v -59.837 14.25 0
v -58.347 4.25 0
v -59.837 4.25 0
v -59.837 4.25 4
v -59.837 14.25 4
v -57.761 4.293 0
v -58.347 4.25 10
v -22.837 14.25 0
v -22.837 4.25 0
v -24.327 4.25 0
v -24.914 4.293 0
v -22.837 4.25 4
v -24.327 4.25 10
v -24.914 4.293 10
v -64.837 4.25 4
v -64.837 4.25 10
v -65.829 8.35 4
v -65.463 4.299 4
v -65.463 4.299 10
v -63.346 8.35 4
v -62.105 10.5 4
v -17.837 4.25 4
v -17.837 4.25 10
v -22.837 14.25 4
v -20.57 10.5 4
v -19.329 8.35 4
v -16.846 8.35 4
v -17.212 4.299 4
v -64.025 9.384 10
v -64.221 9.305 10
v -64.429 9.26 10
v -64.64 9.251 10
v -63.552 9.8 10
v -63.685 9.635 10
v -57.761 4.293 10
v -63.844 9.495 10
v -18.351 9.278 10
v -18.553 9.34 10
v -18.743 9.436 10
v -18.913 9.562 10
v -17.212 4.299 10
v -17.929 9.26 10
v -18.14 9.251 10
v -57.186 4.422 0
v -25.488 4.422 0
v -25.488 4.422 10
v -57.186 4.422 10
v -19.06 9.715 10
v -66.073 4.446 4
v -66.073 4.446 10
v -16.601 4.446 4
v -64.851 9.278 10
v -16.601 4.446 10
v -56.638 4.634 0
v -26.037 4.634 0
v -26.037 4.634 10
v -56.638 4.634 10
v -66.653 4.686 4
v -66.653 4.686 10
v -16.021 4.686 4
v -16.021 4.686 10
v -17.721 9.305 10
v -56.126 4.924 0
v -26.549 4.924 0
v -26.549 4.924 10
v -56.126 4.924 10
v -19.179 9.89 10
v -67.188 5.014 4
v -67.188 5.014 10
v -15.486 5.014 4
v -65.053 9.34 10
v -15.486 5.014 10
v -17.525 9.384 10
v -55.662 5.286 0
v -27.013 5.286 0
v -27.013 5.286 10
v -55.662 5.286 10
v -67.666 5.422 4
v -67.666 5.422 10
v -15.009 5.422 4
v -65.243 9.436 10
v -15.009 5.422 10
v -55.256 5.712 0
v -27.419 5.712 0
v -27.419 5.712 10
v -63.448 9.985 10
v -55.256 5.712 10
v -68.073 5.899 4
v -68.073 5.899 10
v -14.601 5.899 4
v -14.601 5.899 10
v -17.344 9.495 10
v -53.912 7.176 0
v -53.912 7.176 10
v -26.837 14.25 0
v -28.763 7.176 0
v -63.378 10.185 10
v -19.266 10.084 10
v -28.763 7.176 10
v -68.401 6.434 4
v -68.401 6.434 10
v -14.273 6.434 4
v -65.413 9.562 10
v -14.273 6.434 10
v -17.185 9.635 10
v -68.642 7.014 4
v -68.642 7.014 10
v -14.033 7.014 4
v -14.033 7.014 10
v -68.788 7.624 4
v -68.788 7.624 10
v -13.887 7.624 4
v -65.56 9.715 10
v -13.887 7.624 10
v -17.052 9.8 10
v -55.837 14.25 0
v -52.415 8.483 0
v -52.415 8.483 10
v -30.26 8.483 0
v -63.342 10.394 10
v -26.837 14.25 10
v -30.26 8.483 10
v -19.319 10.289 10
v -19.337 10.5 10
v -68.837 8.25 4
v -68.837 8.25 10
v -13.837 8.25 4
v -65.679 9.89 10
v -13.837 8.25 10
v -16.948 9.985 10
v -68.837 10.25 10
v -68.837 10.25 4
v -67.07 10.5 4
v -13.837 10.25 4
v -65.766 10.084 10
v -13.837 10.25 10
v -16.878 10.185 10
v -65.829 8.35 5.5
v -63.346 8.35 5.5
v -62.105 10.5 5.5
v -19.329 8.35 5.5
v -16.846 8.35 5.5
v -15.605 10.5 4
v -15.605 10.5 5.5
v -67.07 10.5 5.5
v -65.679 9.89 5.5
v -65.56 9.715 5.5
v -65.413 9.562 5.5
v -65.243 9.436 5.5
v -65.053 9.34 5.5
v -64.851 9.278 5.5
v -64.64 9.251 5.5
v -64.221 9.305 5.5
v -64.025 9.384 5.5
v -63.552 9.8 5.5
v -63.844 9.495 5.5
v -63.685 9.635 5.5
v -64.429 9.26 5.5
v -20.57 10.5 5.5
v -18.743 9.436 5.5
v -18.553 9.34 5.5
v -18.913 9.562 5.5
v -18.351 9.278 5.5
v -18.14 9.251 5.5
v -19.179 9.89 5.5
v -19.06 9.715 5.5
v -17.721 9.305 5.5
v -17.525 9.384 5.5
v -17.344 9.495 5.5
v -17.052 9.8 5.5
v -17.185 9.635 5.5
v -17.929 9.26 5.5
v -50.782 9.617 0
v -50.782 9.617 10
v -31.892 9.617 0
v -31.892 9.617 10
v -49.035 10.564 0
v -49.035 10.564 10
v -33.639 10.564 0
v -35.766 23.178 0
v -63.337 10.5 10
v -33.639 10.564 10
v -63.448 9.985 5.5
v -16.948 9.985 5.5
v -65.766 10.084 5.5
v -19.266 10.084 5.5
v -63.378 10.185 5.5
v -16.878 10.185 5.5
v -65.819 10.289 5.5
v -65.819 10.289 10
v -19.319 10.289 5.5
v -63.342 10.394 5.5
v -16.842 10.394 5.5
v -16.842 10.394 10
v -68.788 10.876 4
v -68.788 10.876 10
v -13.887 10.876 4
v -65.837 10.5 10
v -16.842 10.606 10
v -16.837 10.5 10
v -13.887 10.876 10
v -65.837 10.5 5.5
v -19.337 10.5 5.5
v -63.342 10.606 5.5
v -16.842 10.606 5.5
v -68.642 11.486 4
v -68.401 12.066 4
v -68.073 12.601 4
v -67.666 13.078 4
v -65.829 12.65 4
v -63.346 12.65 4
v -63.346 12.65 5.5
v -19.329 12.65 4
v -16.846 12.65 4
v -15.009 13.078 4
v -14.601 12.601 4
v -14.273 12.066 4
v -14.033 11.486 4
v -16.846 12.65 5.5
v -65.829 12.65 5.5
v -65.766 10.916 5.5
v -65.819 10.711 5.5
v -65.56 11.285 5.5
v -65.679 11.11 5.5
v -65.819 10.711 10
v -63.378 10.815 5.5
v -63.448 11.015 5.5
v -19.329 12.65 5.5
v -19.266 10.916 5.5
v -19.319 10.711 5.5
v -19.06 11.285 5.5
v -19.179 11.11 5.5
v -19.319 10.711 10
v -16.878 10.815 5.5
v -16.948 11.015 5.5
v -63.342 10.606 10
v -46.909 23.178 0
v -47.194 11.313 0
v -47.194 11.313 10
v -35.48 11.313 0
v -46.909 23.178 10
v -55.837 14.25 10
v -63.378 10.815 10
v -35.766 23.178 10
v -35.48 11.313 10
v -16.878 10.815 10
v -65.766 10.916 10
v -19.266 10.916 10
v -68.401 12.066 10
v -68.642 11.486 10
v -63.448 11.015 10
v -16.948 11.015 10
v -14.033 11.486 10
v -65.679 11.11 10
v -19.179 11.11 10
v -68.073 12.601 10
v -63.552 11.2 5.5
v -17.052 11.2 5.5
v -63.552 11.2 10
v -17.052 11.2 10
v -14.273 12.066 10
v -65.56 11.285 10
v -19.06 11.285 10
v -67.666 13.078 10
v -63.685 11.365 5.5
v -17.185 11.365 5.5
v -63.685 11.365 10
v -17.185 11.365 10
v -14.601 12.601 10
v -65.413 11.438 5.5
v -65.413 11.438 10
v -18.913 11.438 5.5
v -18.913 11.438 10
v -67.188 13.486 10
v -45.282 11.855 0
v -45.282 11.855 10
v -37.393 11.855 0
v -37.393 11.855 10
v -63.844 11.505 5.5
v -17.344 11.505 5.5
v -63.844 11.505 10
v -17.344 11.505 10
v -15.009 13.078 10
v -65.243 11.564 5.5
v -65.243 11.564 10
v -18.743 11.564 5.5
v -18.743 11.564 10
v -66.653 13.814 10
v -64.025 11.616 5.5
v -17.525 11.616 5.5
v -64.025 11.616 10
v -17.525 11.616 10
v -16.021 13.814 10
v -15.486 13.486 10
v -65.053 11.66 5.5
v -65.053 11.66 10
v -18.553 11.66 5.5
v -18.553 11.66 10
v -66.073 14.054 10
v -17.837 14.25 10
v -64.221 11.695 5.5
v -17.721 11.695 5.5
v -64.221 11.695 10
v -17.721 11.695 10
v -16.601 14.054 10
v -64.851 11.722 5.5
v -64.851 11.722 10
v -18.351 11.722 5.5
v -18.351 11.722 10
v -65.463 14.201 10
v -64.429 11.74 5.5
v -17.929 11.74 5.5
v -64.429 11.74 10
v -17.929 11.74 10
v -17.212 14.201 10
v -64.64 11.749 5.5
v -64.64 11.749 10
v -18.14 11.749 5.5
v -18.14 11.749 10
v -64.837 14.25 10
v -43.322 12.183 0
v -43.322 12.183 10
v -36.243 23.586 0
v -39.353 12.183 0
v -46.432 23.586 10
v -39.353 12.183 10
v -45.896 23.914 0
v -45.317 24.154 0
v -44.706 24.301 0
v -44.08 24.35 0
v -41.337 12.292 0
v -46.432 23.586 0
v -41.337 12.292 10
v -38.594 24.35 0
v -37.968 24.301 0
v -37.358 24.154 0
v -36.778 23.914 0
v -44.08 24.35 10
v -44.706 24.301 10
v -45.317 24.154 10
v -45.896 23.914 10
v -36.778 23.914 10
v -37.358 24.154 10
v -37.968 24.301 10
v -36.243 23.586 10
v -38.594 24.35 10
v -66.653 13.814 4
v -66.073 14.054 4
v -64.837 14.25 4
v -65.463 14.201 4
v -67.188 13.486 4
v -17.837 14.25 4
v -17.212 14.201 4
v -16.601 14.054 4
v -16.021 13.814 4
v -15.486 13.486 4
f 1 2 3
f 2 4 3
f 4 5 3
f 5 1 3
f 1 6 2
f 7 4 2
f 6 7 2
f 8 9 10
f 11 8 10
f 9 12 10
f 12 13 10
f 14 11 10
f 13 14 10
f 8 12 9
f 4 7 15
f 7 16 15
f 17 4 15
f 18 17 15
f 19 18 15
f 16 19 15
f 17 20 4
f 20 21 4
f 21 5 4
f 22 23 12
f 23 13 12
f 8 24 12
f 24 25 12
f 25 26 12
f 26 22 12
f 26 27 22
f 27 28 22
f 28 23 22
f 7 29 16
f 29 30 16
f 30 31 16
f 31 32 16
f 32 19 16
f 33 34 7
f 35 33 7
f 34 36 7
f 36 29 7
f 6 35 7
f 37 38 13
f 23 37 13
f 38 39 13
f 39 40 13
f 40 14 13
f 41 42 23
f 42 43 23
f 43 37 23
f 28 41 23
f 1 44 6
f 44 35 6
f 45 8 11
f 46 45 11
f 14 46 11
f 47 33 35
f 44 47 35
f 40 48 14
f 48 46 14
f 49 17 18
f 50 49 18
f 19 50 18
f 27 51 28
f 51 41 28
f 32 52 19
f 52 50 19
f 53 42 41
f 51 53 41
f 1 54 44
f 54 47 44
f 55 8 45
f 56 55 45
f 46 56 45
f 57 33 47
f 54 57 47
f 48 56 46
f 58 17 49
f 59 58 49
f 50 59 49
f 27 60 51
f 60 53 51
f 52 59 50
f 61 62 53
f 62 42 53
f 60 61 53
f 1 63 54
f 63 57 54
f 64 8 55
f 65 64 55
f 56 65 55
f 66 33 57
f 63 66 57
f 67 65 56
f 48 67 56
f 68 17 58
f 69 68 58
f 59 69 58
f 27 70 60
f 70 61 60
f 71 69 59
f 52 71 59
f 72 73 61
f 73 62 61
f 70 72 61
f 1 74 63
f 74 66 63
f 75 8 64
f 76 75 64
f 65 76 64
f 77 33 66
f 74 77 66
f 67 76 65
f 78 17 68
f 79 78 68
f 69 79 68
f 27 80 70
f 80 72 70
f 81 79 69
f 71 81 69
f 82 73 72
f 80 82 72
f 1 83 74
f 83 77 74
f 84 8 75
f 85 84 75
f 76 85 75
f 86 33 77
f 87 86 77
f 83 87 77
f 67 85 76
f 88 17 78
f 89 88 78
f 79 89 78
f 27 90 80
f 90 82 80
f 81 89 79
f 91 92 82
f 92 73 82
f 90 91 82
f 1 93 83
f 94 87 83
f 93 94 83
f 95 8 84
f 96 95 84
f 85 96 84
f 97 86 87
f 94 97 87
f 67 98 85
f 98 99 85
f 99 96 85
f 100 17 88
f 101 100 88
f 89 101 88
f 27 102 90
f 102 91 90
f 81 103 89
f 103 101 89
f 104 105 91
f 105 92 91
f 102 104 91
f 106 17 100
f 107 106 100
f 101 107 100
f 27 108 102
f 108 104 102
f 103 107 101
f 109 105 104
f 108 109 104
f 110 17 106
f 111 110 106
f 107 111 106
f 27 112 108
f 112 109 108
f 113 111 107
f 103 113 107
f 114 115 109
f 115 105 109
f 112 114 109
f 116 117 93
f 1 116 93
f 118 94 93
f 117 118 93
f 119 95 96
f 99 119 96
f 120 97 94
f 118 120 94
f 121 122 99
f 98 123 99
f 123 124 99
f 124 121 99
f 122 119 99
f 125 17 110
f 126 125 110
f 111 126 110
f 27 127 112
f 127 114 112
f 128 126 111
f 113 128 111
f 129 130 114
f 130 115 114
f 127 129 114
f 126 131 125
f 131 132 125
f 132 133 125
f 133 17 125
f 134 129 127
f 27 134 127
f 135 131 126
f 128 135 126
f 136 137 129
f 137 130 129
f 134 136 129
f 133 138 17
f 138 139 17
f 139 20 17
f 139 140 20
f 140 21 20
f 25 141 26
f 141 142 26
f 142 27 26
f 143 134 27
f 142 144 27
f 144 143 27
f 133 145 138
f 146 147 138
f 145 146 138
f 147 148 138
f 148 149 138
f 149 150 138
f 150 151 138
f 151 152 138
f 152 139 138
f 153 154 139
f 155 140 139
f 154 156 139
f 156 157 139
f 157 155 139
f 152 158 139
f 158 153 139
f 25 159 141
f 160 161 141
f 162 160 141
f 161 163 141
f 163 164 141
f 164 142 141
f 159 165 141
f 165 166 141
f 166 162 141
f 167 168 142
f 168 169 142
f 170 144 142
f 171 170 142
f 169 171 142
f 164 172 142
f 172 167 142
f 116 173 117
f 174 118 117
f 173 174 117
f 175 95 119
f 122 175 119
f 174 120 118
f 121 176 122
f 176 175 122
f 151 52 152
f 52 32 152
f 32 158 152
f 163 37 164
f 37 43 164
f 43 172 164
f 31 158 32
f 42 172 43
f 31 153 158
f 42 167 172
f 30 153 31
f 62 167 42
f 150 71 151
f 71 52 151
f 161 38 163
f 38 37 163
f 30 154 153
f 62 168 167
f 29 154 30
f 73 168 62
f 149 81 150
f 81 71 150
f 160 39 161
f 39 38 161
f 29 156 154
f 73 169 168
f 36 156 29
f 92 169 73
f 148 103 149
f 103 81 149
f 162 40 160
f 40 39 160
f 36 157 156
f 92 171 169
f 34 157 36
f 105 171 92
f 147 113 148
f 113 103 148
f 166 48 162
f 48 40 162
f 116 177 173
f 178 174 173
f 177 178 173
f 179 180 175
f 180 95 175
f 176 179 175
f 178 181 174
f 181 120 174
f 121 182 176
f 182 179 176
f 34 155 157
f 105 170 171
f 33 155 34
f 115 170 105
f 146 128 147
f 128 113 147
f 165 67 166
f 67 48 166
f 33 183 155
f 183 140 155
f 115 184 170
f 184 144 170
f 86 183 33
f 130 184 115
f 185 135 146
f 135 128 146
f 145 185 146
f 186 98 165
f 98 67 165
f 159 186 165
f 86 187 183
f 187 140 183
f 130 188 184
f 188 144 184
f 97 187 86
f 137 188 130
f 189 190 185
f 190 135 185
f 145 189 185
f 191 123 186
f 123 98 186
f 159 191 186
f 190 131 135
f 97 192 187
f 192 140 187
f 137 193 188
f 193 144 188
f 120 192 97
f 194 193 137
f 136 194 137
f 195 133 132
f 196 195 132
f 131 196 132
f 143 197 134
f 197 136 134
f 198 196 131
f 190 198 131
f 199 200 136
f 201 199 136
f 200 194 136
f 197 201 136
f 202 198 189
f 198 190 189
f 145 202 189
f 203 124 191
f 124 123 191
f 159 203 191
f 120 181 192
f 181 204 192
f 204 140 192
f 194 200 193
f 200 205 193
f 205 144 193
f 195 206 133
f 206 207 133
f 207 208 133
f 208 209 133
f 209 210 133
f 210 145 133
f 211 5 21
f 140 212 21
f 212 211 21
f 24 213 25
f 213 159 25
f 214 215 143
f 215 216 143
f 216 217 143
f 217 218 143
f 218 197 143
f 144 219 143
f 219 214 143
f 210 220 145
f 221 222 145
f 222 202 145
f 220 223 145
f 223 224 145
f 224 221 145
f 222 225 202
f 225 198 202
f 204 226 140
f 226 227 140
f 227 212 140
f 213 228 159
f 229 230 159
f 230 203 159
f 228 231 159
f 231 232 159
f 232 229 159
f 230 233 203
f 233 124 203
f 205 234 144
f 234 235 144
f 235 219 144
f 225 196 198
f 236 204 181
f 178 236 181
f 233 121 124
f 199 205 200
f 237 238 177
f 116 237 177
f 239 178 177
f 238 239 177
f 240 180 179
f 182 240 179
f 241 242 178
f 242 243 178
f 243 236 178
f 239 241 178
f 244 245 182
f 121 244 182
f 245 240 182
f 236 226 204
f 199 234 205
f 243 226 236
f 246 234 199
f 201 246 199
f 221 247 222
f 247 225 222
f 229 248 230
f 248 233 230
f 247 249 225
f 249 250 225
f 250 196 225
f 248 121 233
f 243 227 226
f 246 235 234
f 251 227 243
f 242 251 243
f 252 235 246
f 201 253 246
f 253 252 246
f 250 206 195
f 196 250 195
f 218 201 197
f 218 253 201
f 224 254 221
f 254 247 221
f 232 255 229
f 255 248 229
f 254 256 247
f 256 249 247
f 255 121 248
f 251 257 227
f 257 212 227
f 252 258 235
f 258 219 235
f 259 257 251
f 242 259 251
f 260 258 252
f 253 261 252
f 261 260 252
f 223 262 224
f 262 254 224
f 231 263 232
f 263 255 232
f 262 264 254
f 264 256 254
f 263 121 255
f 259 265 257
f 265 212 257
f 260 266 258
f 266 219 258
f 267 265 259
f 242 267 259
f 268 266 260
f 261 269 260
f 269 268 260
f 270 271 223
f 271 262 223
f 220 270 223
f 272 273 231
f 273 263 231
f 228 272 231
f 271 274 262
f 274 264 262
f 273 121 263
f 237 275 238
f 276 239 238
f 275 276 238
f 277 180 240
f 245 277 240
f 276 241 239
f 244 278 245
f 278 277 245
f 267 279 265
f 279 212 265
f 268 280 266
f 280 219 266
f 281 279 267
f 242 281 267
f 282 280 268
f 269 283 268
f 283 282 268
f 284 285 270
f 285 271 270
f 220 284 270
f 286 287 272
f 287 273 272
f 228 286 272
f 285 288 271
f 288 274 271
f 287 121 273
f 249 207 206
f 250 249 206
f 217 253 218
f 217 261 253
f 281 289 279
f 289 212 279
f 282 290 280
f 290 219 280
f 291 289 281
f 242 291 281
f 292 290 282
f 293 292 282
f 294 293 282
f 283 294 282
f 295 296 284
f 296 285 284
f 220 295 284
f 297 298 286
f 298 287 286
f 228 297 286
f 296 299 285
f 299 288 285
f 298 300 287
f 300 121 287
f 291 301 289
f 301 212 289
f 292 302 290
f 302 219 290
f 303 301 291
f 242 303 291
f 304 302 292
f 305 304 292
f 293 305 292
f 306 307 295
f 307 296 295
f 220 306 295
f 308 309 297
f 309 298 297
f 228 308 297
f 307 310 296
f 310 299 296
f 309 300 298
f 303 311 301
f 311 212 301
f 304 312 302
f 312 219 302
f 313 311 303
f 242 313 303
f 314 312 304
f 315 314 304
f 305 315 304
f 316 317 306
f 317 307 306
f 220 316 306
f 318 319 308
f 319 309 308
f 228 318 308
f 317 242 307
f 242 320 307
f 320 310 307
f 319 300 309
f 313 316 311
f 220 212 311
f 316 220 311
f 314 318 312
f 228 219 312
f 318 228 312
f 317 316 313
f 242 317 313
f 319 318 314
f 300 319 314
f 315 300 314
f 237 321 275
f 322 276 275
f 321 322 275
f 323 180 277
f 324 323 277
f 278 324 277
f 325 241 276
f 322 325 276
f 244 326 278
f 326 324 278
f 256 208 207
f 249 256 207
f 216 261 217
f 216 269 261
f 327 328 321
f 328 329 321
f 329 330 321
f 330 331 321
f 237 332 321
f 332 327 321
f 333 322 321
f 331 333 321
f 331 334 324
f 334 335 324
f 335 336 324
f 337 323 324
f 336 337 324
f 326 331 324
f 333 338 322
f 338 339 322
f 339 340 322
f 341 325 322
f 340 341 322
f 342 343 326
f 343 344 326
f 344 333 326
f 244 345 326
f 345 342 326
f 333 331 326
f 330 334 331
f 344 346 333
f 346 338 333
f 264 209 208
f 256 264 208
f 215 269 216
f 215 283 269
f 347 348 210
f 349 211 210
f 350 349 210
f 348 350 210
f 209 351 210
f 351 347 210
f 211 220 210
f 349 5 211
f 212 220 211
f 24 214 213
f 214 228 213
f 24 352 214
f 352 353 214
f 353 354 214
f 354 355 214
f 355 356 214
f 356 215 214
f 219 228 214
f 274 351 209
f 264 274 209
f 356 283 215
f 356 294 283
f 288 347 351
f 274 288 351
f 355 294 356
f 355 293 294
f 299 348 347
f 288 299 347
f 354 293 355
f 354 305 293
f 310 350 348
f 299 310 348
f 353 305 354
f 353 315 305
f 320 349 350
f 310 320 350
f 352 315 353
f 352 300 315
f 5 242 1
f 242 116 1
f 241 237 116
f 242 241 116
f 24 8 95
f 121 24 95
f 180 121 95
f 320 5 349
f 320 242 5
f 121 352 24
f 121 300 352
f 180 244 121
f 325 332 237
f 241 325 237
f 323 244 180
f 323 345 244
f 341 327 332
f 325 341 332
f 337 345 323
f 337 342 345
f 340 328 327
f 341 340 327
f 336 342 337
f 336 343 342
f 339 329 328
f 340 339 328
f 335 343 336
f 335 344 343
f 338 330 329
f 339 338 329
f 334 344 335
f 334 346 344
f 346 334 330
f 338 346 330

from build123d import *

# Parameters (mm, degrees)
CROQUIS1_R              = 1.25
SALIENTE_EXTRUIR1_DEPTH = 10
CROQUIS2_W              = 9
CROQUIS2_H              = 10
CORTAR_EXTRUIR1_DEPTH   = 4
CORTAR_EXTRUIR2_DEPTH   = 1.5
REDONDEO2_R             = 4


with BuildPart() as part:
    # Croquis1 → Saliente-Extruir1 (new body)
    with BuildSketch(Plane.XY):
        with BuildLine():
            Line((-68.837310195, 14.25), (-55.837310195, 14.25))
            Line((-55.837310195, 14.25), (-45.737310195, 24.35))
            Line((-45.737310195, 24.35), (-36.937310195, 24.35))
            Line((-36.937310195, 24.35), (-26.837310195, 14.25))
            Line((-26.837310195, 14.25), (-13.837310195, 14.25))
            Line((-13.837310195, 14.25), (-13.837310195, 4.25))
            Line((-13.837310195, 4.25), (-26.337310195, 4.25))
            ThreePointArc((-26.337310195, 4.25), (-41.337310195, 12.292271557), (-56.337310195, 4.25))
            Line((-56.337310195, 4.25), (-68.837310195, 4.25))
            Line((-68.837310195, 4.25), (-68.837310195, 14.25))
        make_face()
        with Locations((-18.087310195, 10.5)):
            Circle(CROQUIS1_R, mode=Mode.SUBTRACT)
        with Locations((-64.587310195, 10.5)):
            Circle(CROQUIS1_R, mode=Mode.SUBTRACT)
    extrude(amount=SALIENTE_EXTRUIR1_DEPTH)

    # Croquis2 → Cortar-Extruir1 (cut)
    with BuildSketch(Plane(origin=(0, 0, 0), x_dir=(-1, 0, 0), z_dir=(0, 0, -1))):
        with Locations((64.337310195, 9.25)):
            Rectangle(CROQUIS2_W, CROQUIS2_H)
        with Locations((18.337310195, 9.25)):
            Rectangle(CROQUIS2_W, CROQUIS2_H)
    extrude(amount=-CORTAR_EXTRUIR1_DEPTH, mode=Mode.SUBTRACT)

    # Croquis3 → Cortar-Extruir2 (cut)
    with BuildSketch(Plane(origin=(0, 0, 4), x_dir=(-1, 0, 0), z_dir=(0, 0, -1))):
        Polygon((62.104704038, 10.5), (63.346007116, 8.35), (65.828613274, 8.35), (67.069916353, 10.5), (65.828613274, 12.65), (63.346007116, 12.65), align=None)
        Polygon((15.604704038, 10.5), (16.846007116, 8.35), (19.328613274, 8.35), (20.569916353, 10.5), (19.328613274, 12.65), (16.846007116, 12.65), align=None)
    extrude(amount=-CORTAR_EXTRUIR2_DEPTH, mode=Mode.SUBTRACT)

    # Redondeo2
    redondeo2_edges = [part.edges().sort_by_distance(p)[0] for p in [
        (-68.837310195, 14.25, 7),
        (-45.737310195, 24.35, 5),
        (-36.937310195, 24.35, 5),
        (-13.837310195, 14.25, 7),
        (-13.837310195, 4.25, 7),
        (-26.337310195, 4.25, 5),
        (-56.337310195, 4.25, 5),
        (-68.837310195, 4.25, 7),
    ]]
    fillet(redondeo2_edges, radius=REDONDEO2_R)


solid = part.part
